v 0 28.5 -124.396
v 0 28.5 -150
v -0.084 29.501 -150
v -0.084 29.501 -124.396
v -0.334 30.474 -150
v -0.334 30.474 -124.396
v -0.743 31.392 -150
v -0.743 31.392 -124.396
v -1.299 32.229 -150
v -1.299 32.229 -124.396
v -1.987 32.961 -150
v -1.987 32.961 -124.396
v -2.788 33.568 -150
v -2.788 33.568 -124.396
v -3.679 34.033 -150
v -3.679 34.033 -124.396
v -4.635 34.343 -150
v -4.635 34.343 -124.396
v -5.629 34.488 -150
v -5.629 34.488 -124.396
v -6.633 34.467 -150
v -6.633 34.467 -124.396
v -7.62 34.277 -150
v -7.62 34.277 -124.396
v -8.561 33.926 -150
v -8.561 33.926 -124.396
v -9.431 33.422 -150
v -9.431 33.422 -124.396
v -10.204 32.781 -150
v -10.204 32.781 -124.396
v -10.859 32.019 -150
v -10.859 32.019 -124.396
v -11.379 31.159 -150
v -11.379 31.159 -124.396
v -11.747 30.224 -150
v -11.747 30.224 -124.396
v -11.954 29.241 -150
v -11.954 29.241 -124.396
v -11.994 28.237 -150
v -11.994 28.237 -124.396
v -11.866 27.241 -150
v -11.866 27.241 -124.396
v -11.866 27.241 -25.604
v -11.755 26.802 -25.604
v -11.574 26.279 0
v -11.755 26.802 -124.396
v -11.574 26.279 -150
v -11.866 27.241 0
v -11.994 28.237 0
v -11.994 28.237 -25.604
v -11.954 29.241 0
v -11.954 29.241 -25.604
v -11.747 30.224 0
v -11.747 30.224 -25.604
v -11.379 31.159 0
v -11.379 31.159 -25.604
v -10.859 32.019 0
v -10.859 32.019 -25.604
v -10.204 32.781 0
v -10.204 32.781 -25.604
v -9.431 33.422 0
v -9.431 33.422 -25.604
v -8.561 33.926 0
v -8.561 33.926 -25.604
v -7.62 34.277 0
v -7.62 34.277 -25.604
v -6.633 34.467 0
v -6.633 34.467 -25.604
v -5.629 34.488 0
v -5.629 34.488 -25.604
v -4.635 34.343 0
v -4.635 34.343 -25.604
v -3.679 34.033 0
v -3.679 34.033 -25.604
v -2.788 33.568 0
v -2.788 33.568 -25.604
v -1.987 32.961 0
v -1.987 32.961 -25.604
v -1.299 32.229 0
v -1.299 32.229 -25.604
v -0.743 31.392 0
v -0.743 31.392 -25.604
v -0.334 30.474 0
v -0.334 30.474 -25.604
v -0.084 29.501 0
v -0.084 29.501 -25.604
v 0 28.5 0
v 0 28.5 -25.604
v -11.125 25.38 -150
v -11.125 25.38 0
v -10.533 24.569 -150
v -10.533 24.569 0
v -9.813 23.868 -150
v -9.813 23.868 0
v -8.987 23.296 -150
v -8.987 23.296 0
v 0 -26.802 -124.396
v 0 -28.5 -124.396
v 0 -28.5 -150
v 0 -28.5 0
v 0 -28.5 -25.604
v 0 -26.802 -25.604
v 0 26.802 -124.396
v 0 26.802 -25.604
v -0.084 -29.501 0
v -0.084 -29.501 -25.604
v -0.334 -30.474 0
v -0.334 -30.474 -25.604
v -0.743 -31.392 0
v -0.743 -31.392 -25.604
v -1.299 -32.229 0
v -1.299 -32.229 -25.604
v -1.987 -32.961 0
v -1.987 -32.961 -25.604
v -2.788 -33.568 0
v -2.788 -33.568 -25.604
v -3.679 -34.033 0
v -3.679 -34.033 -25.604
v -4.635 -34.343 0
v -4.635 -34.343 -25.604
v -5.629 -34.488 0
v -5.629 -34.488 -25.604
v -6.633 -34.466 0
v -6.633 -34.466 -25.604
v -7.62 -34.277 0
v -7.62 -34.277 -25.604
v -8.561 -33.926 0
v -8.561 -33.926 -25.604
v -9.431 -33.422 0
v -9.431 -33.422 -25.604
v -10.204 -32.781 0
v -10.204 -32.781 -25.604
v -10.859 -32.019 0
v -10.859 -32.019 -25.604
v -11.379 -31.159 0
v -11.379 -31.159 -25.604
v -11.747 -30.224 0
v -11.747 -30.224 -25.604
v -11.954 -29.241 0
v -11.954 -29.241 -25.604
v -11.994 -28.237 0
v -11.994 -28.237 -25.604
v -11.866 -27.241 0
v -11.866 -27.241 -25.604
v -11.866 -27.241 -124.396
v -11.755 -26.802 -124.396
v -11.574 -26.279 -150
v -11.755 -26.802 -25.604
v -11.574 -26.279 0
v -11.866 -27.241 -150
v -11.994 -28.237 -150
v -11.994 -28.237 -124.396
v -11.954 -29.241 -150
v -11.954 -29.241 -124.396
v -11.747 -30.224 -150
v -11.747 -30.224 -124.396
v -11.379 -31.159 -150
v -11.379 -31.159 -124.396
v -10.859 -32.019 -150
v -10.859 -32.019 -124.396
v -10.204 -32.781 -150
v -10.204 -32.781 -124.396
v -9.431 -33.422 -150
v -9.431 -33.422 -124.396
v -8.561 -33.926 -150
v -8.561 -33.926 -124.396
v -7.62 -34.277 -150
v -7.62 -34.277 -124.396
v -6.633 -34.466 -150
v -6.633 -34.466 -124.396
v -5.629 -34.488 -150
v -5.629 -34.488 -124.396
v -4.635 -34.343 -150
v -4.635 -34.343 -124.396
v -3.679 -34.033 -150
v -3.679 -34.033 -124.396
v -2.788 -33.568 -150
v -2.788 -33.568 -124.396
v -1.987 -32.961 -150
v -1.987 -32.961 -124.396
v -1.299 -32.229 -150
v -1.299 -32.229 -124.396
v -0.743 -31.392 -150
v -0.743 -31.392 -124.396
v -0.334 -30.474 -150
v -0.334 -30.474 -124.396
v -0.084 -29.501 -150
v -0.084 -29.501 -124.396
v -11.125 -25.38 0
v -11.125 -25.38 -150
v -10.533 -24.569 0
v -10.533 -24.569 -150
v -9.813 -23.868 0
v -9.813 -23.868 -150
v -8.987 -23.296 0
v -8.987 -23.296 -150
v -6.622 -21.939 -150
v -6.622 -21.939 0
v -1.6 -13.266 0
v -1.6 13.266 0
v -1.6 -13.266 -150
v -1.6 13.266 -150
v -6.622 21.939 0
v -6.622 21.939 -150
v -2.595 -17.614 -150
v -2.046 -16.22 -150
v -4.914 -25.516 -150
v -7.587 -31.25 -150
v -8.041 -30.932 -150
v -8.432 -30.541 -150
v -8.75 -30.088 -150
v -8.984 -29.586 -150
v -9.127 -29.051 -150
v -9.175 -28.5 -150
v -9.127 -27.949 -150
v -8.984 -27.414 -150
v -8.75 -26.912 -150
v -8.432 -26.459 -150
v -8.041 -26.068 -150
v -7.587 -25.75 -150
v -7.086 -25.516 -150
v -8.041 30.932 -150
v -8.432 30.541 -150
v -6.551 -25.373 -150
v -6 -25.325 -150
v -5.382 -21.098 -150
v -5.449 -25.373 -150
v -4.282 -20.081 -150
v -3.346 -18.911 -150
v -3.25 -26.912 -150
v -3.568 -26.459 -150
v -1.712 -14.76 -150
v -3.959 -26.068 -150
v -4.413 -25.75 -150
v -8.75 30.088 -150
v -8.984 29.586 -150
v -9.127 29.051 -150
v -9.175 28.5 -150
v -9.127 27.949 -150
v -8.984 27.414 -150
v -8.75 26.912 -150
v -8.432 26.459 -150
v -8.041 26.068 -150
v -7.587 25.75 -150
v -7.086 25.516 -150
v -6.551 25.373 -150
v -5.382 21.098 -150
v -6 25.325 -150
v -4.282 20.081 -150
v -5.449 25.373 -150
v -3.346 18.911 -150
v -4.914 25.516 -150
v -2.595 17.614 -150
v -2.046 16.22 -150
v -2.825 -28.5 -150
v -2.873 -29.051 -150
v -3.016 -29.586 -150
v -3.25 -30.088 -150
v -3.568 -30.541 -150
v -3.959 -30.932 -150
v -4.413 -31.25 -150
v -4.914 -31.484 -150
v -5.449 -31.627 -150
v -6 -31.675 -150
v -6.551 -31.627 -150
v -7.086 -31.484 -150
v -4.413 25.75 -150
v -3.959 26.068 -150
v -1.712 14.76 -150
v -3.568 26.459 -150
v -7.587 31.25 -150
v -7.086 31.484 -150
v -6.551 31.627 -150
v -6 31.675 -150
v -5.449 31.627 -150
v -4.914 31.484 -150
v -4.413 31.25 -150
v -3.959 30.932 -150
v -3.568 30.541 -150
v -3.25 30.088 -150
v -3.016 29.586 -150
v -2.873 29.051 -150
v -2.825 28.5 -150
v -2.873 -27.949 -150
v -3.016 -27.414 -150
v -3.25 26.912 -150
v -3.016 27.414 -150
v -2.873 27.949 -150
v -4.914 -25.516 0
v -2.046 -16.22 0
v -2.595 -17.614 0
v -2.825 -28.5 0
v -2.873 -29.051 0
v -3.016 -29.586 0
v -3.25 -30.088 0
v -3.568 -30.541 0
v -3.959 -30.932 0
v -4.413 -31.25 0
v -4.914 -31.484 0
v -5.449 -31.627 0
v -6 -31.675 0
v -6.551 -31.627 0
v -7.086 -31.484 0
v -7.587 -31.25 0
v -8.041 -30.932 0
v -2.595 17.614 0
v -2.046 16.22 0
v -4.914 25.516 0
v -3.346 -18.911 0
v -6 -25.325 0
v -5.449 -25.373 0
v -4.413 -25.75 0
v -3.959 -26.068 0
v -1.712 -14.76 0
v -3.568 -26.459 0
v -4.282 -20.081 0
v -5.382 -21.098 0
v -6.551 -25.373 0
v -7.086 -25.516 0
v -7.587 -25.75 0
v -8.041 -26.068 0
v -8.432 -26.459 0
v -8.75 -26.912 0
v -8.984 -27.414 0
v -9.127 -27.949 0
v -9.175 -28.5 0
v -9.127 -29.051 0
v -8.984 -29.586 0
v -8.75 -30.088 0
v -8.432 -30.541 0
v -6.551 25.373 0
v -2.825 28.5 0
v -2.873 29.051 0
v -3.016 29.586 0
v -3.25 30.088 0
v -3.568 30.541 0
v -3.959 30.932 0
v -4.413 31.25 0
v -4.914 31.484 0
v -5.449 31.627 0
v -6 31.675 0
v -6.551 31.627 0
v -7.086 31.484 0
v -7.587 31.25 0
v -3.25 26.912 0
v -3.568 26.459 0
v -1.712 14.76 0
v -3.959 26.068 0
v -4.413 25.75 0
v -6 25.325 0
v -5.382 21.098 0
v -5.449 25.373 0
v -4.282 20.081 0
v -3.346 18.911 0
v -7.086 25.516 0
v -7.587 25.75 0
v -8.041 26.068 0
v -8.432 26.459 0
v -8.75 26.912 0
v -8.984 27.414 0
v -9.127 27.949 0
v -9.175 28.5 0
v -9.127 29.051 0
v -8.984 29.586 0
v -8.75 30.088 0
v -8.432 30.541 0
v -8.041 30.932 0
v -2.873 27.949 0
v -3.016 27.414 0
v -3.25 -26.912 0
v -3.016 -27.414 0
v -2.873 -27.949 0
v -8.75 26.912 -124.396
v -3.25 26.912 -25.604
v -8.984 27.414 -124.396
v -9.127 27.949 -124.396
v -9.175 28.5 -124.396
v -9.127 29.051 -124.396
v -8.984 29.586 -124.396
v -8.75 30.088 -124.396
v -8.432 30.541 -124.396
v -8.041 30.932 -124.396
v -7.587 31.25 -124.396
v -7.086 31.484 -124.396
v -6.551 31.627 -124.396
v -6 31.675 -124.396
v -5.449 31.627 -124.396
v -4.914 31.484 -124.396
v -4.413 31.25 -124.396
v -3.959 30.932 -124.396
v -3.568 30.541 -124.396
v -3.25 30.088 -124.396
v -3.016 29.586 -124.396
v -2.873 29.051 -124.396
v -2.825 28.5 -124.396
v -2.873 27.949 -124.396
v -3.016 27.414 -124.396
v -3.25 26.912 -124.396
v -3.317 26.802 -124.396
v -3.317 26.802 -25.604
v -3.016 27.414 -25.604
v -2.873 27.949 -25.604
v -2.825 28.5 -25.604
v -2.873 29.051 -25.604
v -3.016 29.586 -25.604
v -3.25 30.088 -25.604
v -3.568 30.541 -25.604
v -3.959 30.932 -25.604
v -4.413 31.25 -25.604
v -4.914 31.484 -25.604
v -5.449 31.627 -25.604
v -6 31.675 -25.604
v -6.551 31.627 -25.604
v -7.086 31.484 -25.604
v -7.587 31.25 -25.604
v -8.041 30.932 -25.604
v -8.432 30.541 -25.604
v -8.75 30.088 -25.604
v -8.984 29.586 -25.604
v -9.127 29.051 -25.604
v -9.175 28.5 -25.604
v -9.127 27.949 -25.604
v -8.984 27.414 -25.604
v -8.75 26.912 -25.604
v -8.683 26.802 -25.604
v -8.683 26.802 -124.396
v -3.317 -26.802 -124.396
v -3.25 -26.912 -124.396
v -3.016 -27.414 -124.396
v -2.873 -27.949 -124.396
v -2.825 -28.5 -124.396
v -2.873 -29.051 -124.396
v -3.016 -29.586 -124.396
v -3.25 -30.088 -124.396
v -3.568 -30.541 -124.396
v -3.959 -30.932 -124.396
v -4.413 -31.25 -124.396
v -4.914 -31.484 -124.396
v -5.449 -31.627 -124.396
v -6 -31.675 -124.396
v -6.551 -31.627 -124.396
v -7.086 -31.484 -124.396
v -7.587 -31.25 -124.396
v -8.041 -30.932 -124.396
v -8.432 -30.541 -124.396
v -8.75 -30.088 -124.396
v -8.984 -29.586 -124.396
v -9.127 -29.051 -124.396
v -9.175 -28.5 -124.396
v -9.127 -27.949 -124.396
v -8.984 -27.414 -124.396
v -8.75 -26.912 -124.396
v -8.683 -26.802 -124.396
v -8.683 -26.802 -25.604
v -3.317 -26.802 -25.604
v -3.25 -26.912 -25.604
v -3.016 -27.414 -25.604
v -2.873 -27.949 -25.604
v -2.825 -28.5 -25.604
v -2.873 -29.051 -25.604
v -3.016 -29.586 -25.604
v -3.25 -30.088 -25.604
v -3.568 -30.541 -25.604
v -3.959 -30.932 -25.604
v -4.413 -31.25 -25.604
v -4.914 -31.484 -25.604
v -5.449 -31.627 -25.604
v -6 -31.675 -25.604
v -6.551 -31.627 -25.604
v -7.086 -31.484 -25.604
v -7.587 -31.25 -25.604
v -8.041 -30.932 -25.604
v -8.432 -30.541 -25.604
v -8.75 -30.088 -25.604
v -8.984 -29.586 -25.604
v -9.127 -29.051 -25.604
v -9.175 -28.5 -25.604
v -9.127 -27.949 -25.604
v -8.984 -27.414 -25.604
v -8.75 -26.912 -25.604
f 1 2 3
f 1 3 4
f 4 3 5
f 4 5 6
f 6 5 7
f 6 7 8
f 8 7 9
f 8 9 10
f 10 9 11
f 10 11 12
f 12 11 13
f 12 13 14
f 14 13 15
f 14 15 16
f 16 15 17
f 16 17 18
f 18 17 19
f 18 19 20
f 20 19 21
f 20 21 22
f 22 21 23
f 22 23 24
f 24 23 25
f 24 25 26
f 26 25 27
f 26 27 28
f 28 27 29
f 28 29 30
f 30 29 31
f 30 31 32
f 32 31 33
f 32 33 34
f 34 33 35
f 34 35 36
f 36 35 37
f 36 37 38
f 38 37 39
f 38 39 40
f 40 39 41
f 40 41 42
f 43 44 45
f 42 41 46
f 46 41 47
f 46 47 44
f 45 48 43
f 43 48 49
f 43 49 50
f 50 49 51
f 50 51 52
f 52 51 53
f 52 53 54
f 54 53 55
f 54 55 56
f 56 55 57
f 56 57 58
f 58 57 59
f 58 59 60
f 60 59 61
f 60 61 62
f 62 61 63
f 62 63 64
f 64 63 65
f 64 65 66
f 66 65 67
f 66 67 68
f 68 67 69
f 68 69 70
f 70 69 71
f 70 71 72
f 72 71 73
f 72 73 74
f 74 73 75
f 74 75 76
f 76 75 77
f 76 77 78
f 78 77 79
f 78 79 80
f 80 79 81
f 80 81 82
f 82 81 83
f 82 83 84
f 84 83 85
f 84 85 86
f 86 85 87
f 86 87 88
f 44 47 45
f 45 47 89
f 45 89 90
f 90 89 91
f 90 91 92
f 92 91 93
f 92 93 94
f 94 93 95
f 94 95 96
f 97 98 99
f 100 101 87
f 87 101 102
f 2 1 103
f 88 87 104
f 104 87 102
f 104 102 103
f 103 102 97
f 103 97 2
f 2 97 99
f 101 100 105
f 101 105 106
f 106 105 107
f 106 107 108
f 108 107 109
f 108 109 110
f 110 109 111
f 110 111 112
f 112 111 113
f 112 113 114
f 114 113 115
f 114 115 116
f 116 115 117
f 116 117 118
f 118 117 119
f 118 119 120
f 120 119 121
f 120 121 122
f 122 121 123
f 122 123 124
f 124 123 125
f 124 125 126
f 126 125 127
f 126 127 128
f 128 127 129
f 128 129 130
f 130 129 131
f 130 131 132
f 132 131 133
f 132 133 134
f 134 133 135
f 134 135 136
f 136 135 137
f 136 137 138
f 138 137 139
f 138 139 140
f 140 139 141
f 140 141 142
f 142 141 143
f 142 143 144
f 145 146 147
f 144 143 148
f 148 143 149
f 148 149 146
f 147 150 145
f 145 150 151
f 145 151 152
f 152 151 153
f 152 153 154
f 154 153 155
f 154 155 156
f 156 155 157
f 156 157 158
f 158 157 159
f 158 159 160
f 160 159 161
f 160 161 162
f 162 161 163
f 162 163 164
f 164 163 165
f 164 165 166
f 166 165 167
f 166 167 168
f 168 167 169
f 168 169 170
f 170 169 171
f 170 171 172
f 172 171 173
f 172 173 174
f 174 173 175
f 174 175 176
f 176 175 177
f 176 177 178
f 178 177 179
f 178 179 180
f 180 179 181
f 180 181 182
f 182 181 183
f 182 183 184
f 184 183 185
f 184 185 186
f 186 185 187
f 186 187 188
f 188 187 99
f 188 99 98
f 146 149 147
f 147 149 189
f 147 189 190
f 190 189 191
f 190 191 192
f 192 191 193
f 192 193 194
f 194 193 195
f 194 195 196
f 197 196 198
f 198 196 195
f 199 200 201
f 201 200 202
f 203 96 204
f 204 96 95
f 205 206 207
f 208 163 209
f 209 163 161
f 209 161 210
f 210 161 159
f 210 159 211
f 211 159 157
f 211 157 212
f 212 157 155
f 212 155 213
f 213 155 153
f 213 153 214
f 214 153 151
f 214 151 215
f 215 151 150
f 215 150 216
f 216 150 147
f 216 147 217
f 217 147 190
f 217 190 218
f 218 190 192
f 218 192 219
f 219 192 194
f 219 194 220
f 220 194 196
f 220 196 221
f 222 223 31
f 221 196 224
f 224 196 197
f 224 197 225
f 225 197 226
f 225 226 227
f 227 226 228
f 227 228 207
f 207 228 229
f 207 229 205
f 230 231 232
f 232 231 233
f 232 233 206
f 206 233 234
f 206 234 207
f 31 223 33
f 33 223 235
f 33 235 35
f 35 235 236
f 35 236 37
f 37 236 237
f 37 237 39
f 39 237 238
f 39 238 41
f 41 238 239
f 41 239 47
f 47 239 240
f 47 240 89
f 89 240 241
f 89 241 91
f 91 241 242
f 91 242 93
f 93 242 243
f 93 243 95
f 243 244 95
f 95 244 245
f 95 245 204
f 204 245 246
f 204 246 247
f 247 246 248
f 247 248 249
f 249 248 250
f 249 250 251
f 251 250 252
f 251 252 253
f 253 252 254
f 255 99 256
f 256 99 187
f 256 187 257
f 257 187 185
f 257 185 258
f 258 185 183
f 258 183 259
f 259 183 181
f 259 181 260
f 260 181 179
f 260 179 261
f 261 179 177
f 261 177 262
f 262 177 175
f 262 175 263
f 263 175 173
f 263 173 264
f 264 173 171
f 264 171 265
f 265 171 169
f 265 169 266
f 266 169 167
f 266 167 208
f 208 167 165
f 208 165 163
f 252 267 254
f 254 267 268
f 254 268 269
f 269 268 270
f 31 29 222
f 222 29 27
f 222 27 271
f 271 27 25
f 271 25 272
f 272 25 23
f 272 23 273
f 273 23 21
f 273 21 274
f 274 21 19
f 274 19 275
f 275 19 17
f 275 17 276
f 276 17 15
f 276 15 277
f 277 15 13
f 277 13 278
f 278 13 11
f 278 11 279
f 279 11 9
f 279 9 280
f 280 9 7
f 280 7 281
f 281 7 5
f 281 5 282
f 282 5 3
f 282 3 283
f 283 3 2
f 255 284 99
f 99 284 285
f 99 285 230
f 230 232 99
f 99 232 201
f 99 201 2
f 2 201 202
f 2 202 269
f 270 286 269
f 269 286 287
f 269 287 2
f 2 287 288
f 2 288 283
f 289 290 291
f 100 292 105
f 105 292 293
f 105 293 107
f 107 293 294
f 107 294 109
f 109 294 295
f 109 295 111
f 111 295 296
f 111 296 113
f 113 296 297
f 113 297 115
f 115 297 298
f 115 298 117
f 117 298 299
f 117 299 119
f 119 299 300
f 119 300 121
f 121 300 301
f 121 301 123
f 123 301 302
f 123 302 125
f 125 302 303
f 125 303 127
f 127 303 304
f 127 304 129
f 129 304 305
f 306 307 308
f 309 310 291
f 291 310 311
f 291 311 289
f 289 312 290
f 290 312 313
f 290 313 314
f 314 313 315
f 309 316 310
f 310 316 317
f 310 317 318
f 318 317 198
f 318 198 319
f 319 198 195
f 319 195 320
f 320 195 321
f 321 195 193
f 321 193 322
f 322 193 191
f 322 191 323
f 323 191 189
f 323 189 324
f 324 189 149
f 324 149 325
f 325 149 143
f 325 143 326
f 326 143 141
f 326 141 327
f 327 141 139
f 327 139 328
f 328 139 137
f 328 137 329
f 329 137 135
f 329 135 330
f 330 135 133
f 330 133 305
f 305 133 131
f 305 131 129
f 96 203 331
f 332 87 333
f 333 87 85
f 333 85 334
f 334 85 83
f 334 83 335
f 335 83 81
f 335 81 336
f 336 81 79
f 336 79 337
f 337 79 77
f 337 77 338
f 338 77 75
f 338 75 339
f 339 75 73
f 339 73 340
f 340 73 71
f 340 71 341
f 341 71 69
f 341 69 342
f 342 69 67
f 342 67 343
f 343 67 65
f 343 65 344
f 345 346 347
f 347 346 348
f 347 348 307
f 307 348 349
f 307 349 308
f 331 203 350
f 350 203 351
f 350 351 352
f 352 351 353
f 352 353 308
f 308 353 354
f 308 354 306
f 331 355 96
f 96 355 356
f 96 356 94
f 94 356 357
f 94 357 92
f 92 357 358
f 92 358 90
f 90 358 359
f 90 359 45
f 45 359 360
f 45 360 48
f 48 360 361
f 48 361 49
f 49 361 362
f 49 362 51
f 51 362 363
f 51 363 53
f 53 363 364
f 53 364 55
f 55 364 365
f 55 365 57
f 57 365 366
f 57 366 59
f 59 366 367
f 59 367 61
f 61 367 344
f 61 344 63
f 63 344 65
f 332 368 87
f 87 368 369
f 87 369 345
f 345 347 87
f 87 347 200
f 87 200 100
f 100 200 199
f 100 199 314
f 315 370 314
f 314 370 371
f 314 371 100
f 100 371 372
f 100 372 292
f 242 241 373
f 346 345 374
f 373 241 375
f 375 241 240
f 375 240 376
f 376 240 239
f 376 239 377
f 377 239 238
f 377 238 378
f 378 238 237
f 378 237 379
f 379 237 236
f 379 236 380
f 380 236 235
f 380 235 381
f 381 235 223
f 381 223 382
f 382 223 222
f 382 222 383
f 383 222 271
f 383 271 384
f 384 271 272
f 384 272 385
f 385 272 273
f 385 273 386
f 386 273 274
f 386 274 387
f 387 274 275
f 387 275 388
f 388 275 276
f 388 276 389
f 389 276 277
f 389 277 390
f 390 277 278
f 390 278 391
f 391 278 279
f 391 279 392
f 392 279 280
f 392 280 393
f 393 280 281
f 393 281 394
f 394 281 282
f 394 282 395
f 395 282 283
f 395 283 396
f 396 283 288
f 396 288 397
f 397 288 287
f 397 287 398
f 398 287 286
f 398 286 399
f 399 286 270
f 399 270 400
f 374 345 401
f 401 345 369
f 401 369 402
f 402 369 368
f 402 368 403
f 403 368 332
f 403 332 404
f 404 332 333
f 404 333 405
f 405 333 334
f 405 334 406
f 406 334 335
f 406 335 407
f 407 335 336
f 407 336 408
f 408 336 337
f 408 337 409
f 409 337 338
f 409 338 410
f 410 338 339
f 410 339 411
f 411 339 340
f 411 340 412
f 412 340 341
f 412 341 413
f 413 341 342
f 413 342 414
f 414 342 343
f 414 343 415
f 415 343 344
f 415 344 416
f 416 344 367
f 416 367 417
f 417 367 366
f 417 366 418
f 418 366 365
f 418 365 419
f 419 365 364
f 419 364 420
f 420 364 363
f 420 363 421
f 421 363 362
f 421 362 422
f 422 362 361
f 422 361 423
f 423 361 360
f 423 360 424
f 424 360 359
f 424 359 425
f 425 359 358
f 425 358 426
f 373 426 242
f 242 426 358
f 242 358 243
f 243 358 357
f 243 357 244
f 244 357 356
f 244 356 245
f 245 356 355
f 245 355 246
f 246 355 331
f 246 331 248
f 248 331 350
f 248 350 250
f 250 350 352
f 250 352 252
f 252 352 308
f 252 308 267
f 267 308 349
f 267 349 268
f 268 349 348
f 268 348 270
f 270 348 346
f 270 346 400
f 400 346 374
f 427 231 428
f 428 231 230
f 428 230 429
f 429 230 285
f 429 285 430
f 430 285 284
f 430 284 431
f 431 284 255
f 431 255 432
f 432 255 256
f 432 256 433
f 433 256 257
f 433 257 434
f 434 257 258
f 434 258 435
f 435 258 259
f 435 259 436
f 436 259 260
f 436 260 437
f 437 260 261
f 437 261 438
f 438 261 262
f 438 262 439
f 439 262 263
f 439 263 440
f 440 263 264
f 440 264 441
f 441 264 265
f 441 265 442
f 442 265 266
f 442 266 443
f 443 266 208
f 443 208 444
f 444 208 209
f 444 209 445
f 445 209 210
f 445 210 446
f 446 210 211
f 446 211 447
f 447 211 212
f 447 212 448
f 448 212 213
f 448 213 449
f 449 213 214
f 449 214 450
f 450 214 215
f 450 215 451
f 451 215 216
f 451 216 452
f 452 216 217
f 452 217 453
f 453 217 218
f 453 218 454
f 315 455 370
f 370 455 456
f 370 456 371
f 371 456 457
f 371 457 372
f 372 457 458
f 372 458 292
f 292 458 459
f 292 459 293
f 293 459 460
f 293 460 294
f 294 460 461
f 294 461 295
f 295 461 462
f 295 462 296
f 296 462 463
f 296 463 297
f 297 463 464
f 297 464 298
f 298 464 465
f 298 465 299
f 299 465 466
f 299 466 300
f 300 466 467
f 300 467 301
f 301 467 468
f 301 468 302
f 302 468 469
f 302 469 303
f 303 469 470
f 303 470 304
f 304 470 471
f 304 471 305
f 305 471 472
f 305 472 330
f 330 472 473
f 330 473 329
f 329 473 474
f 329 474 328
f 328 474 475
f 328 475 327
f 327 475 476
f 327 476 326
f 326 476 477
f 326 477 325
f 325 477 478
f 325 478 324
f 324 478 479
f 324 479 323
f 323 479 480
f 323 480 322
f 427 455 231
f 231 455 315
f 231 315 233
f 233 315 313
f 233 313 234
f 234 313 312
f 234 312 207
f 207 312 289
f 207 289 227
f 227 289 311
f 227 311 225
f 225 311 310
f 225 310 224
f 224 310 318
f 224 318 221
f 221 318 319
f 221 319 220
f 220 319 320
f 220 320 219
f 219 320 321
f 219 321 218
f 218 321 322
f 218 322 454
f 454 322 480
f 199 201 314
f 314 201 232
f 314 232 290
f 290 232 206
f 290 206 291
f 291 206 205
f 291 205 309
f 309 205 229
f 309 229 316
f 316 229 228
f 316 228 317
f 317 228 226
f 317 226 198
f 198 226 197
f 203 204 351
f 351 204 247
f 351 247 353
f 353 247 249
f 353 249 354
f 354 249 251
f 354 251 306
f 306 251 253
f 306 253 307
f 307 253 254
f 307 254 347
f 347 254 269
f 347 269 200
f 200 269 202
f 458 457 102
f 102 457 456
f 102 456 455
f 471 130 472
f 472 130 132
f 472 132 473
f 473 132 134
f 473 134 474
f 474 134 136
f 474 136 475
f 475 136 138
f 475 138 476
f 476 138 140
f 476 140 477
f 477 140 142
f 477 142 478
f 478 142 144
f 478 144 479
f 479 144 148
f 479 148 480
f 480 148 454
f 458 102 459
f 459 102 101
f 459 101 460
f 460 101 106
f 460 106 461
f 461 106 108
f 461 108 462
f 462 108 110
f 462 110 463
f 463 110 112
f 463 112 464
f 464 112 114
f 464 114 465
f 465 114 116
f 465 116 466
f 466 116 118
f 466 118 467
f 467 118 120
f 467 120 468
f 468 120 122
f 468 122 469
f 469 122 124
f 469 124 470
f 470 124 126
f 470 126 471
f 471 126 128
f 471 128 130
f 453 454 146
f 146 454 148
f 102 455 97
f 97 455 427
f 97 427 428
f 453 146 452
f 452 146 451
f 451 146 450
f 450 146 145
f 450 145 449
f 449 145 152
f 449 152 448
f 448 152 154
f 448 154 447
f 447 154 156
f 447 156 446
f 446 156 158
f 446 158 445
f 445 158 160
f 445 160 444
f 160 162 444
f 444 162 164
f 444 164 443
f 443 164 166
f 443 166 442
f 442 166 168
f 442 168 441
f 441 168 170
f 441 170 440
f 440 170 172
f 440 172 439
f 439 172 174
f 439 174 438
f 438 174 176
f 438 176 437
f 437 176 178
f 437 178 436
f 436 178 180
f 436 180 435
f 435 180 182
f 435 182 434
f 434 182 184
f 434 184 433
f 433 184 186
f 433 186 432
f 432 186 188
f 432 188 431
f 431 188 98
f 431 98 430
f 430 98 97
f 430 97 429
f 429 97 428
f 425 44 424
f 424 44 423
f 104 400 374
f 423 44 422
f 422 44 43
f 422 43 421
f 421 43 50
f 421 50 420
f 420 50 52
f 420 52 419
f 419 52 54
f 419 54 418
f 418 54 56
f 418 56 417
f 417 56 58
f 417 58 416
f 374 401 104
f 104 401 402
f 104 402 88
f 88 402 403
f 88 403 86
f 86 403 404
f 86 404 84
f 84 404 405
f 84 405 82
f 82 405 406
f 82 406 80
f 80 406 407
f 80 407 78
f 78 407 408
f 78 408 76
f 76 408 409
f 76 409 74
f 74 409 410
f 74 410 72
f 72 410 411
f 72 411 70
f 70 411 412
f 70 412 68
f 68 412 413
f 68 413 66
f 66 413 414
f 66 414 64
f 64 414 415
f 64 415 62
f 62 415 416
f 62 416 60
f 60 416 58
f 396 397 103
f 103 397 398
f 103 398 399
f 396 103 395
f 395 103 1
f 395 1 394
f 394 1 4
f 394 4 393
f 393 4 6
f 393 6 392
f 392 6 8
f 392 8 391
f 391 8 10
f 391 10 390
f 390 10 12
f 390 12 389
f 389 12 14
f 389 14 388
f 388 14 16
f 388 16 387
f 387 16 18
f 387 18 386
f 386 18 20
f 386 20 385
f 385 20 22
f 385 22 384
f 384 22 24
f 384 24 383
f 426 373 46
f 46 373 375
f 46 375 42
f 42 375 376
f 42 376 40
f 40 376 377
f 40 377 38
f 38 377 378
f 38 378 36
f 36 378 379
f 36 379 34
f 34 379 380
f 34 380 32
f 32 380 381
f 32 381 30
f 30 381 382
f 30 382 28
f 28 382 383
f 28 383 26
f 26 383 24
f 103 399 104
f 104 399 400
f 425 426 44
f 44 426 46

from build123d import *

# Parameters (mm, degrees)
CROQUIS1_R              = 3.175
SALIENTE_EXTRUIR1_DEPTH = 150
REDONDEO1_R             = 10
CROQUIS3_W              = 98.791812306
CROQUIS3_H              = 18.145434914
CORTAR_EXTRUIR2_DEPTH   = 155.383451186


with BuildPart() as part:
    # Croquis1 → Saliente-Extruir1 (new body)
    with BuildSketch(Plane.XY):
        with BuildLine():
            Line((-1.6, 19.056228096), (-8.98691391, 23.296314259))
            ThreePointArc((-8.98691391, 23.296314259), (-9.006535925, 33.69237342), (0, 28.5))
            Line((0, 28.5), (0, -28.5))
            ThreePointArc((0, -28.5), (-9.006535925, -33.69237342), (-8.98691391, -23.296314259))
            Line((-8.98691391, -23.296314259), (-1.6, -19.056228096))
            Line((-1.6, -19.056228096), (-1.6, 19.056228096))
        make_face()
        with Locations((-6, 28.5)):
            Circle(CROQUIS1_R, mode=Mode.SUBTRACT)
        with Locations(Location((-6, -28.5, 0), (0, 0, 180))):
            Circle(CROQUIS1_R, mode=Mode.SUBTRACT)
    extrude(amount=-SALIENTE_EXTRUIR1_DEPTH)

    # Redondeo1
    redondeo1_edges = [part.edges().sort_by_distance(p)[0] for p in [
        (-1.6, -19.056228096, -75),
        (-1.6, 19.056228096, -75),
    ]]
    fillet(redondeo1_edges, radius=REDONDEO1_R)

    # Croquis3 → Cortar-Extruir2 (cut, through all)
    with BuildSketch(Plane(origin=(0, 0, 0), x_dir=(0, 0, -1), z_dir=(1, 0, 0))):
        with Locations((75, 35.875128035)):
            Rectangle(CROQUIS3_W, CROQUIS3_H)
        with Locations((75, -35.875128035)):
            Rectangle(CROQUIS3_W, CROQUIS3_H)
    extrude(amount=-CORTAR_EXTRUIR2_DEPTH, mode=Mode.SUBTRACT)


solid = part.part
